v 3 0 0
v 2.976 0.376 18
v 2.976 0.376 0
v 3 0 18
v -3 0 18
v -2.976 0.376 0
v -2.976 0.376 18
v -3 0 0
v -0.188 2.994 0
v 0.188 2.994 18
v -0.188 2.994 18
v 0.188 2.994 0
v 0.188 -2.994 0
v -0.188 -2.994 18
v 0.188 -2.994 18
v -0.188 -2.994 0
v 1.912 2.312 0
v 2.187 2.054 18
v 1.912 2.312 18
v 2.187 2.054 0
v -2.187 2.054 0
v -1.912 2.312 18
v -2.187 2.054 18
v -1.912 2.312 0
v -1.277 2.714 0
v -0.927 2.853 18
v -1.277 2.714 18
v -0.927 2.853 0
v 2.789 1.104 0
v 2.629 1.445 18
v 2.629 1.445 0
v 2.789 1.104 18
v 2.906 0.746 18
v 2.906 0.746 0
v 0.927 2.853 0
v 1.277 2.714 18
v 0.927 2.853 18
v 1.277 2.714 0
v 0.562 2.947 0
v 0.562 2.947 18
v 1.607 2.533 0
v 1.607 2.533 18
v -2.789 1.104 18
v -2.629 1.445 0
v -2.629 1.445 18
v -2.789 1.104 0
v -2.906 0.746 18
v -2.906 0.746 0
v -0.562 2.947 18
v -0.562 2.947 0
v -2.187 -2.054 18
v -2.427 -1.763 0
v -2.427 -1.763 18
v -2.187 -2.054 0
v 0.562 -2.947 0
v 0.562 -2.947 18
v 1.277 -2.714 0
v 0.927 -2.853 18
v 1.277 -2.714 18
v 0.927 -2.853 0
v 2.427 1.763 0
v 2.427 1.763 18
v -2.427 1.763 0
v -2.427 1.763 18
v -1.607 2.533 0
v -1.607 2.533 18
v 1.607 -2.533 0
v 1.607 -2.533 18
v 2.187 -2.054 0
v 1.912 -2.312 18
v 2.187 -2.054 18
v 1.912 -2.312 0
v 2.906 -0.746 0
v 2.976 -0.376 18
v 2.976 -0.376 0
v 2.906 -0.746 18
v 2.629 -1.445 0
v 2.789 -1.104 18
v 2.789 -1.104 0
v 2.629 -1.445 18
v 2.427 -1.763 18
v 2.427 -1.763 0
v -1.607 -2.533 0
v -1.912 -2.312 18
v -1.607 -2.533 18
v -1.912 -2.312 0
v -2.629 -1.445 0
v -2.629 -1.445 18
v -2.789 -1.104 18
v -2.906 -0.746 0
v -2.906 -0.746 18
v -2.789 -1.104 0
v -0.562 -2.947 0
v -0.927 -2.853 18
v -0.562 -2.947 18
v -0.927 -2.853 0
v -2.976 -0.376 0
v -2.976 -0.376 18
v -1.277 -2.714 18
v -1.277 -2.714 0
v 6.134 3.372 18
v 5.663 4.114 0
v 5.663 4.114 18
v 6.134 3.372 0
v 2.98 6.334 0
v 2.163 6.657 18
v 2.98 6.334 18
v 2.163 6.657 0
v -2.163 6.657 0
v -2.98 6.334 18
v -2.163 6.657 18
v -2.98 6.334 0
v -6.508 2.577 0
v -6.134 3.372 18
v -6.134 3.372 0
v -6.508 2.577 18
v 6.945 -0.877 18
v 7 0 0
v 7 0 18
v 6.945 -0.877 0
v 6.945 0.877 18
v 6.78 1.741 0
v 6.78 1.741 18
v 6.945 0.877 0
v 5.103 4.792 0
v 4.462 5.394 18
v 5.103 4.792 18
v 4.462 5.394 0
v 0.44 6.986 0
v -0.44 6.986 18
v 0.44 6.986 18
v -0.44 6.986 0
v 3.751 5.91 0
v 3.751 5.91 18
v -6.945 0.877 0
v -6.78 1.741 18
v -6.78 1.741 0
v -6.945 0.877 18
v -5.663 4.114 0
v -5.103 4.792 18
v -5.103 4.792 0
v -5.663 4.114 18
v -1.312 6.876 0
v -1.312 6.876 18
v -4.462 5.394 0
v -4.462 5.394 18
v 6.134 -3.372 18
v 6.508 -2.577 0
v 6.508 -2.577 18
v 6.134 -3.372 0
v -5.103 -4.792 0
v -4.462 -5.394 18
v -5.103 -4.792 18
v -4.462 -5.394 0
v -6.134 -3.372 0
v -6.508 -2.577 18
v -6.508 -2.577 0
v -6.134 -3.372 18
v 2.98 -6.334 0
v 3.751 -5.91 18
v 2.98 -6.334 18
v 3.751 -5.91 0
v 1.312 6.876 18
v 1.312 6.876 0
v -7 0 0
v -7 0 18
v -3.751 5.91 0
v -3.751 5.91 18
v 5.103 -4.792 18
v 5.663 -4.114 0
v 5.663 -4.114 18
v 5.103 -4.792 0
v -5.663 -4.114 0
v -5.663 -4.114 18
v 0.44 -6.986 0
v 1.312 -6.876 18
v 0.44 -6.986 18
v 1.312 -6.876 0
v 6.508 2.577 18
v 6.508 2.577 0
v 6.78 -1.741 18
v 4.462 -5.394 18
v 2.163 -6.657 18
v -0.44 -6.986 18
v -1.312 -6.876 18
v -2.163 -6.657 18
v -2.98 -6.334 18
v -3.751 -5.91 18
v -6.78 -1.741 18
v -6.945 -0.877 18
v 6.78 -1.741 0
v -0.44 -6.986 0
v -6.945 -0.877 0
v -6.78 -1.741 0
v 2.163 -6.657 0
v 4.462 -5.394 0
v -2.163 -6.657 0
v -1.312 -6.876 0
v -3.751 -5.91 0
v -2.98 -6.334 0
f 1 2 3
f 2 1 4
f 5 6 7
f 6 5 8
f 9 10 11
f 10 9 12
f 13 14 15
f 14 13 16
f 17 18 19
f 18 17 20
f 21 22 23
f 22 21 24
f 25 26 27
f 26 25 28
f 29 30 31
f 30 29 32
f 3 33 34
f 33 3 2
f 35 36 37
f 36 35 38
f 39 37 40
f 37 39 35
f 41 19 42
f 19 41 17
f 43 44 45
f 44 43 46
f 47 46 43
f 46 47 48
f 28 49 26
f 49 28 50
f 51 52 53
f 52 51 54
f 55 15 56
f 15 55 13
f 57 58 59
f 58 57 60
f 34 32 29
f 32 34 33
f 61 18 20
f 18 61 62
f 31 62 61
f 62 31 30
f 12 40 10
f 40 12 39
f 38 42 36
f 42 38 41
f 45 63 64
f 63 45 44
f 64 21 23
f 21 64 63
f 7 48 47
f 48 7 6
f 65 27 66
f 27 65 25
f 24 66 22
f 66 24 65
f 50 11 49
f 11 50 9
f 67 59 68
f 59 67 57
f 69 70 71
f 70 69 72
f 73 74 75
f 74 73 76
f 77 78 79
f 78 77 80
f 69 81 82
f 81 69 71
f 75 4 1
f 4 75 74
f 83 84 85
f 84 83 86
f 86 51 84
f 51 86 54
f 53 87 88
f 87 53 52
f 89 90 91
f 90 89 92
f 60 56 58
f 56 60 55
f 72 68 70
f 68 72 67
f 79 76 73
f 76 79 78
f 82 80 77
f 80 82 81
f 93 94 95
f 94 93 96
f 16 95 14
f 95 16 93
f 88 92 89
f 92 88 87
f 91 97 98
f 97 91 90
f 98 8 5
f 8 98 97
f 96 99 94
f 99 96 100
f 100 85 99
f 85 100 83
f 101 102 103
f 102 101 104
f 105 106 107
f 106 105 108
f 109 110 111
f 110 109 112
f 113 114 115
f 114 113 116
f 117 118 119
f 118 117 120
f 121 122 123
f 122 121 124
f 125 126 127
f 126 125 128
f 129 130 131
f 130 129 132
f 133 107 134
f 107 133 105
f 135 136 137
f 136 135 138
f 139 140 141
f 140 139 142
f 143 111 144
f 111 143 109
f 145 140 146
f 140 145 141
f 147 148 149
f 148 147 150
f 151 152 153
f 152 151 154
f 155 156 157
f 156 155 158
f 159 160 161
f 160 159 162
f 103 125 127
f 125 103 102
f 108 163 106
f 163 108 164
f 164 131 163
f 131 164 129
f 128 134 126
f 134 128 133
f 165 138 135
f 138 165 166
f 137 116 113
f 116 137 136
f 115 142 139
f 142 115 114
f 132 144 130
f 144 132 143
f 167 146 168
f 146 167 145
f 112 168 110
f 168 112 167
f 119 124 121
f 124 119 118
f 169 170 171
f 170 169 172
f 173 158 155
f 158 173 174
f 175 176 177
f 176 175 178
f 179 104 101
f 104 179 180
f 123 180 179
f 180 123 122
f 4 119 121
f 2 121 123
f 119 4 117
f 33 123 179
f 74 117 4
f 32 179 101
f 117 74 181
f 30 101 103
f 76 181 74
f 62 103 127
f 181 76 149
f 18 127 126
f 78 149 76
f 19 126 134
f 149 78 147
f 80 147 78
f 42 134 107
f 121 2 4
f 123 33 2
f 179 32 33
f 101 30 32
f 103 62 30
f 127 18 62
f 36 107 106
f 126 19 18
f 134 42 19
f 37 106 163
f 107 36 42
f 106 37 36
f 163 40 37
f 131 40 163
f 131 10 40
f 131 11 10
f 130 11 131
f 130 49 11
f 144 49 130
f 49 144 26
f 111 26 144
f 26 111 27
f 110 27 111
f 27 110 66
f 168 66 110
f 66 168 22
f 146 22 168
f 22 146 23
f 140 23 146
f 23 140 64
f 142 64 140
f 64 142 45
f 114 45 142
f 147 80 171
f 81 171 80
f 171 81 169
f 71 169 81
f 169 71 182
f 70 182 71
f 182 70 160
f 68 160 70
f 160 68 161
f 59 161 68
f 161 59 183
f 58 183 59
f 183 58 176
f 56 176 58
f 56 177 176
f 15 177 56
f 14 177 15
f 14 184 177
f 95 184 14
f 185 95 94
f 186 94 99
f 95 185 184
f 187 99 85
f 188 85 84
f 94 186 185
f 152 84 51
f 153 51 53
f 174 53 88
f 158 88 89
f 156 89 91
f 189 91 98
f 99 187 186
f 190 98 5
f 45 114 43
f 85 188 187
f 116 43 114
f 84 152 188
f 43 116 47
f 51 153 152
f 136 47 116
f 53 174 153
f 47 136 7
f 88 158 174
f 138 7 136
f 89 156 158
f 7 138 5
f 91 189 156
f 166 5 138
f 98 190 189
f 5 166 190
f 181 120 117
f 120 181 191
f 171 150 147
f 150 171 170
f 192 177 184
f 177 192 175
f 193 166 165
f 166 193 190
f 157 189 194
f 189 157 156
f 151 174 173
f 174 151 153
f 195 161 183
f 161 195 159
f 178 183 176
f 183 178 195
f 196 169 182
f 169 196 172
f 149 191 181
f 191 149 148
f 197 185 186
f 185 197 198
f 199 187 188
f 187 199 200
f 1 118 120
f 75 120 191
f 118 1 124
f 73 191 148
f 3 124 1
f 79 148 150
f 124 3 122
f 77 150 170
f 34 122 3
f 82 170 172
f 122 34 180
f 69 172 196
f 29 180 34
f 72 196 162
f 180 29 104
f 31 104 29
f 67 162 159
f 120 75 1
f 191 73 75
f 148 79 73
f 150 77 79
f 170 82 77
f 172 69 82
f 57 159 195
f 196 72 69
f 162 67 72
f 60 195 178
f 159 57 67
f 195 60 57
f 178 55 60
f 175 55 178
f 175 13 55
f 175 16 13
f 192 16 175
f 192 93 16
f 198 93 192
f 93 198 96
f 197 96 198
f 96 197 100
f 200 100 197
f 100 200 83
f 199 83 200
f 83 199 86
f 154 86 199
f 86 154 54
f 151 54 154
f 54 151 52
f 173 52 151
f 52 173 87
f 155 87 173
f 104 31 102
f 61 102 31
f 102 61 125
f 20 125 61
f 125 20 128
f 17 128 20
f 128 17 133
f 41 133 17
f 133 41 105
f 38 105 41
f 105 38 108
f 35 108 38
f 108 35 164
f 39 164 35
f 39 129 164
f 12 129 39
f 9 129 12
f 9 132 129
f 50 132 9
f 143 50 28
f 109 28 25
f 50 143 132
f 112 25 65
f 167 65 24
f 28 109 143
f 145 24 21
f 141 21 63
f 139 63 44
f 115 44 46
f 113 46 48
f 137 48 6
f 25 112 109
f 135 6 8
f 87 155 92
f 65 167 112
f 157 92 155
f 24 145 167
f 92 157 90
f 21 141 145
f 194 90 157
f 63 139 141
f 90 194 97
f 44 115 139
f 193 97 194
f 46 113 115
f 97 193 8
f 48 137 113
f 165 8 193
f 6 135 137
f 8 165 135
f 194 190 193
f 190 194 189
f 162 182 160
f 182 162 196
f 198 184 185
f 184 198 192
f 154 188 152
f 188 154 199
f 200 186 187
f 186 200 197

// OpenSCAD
$fn = 50;


difference() {
	union() {
		cylinder(h = 18, r = 7.0000000000);
	}
	union() {
		cylinder(h = 18, r = 3.0000000000);
		cylinder(h = 18, r = 3.0000000000);
		cylinder(h = 18, r = 1.5000000000);
		cylinder(h = 18, r = 1.5000000000);
		cylinder(h = 18, r = 1.5000000000);
		cylinder(h = 18, r = 1.5000000000);
		cylinder(h = 18, r = 1.5000000000);
		cylinder(h = 18, r = 1.5000000000);
	}
}
